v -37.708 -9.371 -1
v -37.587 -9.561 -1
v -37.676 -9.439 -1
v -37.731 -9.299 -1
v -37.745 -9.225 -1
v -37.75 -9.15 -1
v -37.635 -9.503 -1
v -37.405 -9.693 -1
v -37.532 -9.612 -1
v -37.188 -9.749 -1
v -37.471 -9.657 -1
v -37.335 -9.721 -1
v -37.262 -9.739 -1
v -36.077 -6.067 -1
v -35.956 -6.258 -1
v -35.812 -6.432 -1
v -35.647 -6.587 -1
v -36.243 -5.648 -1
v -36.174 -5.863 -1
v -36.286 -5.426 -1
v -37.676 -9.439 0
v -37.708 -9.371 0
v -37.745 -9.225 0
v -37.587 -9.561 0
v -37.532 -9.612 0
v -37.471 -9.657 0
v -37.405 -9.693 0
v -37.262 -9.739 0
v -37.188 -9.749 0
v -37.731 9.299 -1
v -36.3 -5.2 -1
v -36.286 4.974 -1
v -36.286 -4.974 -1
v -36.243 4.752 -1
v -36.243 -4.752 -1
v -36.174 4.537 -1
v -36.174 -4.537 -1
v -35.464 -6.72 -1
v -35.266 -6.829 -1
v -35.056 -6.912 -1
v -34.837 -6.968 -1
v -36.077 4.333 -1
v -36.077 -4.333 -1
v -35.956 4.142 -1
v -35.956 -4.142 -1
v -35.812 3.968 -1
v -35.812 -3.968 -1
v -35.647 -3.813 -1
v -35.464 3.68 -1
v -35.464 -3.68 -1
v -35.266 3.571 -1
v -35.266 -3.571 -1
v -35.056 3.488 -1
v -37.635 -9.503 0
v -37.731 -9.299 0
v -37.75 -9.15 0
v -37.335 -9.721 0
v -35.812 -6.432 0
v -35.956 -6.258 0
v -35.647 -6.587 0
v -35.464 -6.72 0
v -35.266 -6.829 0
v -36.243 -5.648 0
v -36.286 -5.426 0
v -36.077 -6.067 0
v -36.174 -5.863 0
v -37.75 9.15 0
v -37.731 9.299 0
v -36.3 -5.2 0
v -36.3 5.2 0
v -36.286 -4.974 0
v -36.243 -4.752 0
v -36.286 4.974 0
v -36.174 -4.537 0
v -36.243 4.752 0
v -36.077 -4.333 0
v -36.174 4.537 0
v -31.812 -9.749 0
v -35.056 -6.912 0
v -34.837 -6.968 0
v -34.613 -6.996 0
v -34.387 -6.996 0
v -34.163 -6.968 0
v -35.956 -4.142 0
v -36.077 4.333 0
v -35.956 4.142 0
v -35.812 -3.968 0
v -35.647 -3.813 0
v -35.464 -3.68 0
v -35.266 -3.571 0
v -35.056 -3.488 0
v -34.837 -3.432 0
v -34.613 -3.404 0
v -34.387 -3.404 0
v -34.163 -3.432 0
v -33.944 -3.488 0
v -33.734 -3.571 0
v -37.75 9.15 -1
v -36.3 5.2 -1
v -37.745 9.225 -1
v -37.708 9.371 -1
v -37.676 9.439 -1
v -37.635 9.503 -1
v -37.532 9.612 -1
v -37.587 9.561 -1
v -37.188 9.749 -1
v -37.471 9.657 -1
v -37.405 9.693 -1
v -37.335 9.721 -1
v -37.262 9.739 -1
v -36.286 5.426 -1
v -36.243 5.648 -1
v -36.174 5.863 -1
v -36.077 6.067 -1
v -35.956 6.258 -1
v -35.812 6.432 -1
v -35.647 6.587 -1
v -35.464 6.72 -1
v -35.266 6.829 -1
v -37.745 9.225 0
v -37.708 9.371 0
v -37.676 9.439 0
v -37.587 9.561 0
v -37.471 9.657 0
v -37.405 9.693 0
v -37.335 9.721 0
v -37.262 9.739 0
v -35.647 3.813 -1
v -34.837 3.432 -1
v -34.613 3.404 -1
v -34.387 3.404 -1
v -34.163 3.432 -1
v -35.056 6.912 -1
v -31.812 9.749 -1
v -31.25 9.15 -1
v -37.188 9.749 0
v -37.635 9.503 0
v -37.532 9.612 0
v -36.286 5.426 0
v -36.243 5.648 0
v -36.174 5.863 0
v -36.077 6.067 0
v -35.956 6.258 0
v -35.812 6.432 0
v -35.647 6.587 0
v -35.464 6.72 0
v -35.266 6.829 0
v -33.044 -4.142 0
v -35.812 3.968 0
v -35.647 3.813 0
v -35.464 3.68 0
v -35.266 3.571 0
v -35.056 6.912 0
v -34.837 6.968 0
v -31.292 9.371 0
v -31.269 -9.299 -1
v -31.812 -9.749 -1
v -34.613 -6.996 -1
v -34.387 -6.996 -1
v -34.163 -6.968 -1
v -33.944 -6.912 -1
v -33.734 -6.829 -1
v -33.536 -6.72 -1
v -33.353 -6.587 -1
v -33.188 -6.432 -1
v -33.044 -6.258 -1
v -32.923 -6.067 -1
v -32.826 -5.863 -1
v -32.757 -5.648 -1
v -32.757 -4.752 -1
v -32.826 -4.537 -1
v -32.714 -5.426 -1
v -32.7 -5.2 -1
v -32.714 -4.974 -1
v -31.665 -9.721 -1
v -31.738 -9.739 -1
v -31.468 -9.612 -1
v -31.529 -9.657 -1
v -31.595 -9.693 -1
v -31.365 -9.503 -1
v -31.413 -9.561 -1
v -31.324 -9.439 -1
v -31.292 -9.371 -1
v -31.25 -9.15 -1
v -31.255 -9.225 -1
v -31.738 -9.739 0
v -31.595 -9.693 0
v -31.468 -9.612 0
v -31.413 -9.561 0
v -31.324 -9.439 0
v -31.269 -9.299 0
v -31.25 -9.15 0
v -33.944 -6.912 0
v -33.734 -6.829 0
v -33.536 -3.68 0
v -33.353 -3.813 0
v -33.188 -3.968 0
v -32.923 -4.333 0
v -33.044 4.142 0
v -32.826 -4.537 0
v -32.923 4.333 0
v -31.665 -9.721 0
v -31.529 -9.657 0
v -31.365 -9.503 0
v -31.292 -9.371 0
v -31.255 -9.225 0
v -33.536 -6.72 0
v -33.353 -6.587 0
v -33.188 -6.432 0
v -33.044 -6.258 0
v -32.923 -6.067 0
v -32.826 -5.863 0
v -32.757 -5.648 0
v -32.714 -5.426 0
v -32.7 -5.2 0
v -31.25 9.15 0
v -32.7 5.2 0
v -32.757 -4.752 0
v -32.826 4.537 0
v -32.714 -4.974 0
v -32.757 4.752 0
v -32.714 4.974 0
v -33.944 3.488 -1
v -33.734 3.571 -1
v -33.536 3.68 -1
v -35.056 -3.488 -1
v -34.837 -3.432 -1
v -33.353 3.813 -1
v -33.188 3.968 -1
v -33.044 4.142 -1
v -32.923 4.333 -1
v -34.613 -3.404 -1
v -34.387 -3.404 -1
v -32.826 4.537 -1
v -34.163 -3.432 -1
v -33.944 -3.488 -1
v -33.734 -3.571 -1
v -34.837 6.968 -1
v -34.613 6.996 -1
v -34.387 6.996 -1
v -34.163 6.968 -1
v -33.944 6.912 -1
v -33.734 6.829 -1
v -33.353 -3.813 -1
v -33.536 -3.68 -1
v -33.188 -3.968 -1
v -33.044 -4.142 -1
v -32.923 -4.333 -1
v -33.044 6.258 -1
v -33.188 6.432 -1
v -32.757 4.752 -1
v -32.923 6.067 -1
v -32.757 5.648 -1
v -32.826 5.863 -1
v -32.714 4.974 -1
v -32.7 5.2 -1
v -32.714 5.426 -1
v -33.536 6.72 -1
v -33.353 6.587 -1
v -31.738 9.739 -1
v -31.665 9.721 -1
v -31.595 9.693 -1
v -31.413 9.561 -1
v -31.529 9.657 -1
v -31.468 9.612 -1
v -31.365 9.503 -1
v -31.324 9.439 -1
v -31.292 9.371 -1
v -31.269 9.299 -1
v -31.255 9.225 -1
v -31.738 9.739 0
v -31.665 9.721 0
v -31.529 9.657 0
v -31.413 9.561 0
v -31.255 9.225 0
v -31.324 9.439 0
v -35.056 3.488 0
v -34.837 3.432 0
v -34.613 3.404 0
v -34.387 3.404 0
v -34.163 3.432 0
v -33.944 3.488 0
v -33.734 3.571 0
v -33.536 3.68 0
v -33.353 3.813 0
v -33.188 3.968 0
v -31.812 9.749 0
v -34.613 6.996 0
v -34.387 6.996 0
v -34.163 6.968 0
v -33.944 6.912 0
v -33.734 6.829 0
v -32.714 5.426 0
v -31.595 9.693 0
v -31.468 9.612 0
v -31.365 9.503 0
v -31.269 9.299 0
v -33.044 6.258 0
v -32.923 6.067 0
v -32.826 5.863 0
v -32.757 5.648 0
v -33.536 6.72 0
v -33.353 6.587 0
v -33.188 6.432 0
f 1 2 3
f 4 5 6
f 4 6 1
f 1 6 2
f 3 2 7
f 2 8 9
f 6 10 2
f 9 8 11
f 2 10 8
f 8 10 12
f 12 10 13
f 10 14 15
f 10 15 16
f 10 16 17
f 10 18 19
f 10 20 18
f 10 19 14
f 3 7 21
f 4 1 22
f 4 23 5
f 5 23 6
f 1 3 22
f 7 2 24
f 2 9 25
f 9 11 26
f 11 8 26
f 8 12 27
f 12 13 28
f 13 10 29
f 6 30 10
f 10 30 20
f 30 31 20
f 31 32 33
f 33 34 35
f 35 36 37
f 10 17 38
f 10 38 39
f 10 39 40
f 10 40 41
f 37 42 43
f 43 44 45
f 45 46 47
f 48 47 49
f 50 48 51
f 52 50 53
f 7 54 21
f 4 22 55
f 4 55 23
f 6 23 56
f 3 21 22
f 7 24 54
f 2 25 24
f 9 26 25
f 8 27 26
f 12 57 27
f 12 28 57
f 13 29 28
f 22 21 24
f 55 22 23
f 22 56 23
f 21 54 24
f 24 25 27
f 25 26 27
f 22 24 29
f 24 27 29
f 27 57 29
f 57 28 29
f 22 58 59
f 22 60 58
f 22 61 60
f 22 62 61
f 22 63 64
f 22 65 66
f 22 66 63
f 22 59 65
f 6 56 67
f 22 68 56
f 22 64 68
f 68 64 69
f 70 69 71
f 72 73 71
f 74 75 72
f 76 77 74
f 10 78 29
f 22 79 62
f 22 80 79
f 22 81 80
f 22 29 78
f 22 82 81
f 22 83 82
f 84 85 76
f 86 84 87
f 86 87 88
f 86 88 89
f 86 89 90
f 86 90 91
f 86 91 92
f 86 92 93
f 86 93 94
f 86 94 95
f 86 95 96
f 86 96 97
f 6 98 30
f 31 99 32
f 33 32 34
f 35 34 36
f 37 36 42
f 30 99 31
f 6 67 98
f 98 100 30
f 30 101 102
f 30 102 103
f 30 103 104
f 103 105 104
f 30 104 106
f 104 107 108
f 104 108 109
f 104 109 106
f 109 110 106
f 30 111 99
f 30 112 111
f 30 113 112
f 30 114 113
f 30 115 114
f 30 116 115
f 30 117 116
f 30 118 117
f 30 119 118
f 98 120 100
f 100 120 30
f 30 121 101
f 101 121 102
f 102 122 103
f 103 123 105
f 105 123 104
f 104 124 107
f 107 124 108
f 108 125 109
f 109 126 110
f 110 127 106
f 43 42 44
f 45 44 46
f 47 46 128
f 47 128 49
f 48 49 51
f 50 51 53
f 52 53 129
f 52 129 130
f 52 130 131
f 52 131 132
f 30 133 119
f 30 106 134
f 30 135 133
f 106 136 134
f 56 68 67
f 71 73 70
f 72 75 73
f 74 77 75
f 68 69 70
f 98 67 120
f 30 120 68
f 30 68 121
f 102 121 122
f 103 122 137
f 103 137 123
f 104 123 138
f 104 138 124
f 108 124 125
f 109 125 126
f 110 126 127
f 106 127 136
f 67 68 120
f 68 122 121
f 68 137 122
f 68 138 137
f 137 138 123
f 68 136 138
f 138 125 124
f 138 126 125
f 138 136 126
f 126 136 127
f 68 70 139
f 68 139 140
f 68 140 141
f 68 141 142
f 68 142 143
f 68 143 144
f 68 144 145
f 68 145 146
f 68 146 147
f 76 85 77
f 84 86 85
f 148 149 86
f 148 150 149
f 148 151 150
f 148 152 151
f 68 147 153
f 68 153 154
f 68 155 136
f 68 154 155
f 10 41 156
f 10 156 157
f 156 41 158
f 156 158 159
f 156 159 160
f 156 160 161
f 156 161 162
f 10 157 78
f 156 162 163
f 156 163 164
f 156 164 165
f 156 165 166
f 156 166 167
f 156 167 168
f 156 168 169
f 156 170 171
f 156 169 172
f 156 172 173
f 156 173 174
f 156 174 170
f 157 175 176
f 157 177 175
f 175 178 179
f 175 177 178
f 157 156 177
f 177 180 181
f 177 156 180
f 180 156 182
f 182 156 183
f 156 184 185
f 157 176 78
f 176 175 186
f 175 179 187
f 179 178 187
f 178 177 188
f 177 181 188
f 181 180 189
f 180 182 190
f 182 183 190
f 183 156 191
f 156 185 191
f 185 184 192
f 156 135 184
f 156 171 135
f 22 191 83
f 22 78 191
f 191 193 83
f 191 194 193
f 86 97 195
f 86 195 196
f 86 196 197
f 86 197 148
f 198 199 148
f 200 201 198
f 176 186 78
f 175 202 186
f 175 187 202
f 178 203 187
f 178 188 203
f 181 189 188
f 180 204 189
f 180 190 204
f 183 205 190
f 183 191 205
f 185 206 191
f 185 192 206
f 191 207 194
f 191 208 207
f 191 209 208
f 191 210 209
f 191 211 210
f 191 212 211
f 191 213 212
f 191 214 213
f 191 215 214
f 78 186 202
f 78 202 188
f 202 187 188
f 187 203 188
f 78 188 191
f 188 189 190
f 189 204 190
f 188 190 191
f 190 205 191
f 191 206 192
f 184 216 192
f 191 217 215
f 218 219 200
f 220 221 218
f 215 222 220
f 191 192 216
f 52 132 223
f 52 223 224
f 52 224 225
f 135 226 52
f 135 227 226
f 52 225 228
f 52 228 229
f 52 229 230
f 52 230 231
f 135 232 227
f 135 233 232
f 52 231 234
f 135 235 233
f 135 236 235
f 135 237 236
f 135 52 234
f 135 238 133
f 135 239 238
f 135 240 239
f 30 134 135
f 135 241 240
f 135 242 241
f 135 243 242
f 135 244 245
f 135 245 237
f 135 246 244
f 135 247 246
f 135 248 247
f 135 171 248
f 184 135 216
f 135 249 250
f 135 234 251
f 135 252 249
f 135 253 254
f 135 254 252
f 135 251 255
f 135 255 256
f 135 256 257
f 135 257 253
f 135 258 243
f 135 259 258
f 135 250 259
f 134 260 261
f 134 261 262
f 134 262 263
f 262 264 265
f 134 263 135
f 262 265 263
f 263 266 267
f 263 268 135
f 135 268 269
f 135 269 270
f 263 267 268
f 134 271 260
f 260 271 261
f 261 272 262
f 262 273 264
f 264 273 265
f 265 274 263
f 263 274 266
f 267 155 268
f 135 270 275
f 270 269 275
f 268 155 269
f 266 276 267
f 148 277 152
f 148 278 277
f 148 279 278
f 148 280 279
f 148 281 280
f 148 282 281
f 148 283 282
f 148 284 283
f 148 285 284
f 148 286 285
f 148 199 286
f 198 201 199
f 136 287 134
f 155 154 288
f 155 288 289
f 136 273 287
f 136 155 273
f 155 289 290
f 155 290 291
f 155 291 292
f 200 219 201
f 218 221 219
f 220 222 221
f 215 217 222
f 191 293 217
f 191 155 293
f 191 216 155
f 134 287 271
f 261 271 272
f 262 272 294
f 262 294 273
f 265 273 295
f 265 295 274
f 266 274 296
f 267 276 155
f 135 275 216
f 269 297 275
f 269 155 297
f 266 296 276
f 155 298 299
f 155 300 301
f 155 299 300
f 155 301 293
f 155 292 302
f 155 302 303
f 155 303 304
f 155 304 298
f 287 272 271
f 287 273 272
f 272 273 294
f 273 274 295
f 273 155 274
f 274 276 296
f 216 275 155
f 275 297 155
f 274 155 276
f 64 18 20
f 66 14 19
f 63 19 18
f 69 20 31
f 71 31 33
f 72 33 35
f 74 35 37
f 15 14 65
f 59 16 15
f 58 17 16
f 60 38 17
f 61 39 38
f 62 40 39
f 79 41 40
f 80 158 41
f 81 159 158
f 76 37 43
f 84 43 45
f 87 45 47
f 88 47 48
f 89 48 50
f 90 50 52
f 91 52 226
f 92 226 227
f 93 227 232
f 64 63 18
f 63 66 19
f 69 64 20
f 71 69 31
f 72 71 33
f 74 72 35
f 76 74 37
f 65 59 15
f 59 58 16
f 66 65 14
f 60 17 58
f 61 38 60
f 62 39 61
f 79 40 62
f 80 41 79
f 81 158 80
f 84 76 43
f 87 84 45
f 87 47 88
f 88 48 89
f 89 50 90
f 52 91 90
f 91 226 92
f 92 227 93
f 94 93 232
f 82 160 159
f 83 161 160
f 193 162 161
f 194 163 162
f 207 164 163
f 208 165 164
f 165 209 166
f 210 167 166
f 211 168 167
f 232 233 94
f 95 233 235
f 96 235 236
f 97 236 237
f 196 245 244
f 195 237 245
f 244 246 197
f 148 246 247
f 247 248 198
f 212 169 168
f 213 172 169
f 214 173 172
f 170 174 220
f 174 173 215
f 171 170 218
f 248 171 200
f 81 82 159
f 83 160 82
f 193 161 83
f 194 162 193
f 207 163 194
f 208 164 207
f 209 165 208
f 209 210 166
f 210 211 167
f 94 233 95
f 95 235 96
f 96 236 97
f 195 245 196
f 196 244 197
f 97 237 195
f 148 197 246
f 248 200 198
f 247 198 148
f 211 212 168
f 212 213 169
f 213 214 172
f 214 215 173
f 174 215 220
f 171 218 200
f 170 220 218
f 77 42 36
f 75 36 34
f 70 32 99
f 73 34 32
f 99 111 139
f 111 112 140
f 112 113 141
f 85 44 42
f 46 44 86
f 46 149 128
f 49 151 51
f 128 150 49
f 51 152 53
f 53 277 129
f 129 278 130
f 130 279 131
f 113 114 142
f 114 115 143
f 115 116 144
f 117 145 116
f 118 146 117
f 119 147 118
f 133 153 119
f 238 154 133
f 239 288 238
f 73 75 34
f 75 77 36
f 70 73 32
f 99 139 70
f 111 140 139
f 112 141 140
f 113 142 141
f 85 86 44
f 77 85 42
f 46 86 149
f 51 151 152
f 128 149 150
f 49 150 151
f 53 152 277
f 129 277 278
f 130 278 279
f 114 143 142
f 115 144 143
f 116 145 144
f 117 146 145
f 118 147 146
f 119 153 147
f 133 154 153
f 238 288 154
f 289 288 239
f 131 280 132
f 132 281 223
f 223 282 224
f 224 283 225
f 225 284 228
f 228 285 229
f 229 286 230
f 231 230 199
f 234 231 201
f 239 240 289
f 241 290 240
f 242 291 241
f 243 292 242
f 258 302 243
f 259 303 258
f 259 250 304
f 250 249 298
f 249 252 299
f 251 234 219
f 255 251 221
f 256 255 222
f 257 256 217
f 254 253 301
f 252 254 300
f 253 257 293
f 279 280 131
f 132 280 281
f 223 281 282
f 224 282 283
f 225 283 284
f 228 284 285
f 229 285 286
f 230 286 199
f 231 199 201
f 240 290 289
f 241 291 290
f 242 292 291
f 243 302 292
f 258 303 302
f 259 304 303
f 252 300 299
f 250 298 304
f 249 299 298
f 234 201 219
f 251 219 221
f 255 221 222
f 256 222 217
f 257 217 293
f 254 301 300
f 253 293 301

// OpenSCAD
$fn = 50;

difference() {
	union() {
		translate(v = [-34.5, 0, -1]) {
			hull() {
				translate(v = [-2.65, 9.15, 0]) {
					cylinder(h = 1, r = 0.6);
				}
				translate(v = [2.65, 9.15, 0]) {
					cylinder(h = 1, r = 0.6);
				}
				translate(v = [-2.65, -9.15, 0]) {
					cylinder(h = 1, r = 0.6);
				}
				translate(v = [2.65, -9.15, 0]) {
					cylinder(h = 1, r = 0.6);
				}
			}
		}
	}
	union() {
		translate(v = [-34.5, -5.2, -2]) {
			cylinder(h = 3, r = 1.8);
		}
		translate(v = [-34.5, 5.2, -2]) {
			cylinder(h = 3, r = 1.8);
		}
	}
}
